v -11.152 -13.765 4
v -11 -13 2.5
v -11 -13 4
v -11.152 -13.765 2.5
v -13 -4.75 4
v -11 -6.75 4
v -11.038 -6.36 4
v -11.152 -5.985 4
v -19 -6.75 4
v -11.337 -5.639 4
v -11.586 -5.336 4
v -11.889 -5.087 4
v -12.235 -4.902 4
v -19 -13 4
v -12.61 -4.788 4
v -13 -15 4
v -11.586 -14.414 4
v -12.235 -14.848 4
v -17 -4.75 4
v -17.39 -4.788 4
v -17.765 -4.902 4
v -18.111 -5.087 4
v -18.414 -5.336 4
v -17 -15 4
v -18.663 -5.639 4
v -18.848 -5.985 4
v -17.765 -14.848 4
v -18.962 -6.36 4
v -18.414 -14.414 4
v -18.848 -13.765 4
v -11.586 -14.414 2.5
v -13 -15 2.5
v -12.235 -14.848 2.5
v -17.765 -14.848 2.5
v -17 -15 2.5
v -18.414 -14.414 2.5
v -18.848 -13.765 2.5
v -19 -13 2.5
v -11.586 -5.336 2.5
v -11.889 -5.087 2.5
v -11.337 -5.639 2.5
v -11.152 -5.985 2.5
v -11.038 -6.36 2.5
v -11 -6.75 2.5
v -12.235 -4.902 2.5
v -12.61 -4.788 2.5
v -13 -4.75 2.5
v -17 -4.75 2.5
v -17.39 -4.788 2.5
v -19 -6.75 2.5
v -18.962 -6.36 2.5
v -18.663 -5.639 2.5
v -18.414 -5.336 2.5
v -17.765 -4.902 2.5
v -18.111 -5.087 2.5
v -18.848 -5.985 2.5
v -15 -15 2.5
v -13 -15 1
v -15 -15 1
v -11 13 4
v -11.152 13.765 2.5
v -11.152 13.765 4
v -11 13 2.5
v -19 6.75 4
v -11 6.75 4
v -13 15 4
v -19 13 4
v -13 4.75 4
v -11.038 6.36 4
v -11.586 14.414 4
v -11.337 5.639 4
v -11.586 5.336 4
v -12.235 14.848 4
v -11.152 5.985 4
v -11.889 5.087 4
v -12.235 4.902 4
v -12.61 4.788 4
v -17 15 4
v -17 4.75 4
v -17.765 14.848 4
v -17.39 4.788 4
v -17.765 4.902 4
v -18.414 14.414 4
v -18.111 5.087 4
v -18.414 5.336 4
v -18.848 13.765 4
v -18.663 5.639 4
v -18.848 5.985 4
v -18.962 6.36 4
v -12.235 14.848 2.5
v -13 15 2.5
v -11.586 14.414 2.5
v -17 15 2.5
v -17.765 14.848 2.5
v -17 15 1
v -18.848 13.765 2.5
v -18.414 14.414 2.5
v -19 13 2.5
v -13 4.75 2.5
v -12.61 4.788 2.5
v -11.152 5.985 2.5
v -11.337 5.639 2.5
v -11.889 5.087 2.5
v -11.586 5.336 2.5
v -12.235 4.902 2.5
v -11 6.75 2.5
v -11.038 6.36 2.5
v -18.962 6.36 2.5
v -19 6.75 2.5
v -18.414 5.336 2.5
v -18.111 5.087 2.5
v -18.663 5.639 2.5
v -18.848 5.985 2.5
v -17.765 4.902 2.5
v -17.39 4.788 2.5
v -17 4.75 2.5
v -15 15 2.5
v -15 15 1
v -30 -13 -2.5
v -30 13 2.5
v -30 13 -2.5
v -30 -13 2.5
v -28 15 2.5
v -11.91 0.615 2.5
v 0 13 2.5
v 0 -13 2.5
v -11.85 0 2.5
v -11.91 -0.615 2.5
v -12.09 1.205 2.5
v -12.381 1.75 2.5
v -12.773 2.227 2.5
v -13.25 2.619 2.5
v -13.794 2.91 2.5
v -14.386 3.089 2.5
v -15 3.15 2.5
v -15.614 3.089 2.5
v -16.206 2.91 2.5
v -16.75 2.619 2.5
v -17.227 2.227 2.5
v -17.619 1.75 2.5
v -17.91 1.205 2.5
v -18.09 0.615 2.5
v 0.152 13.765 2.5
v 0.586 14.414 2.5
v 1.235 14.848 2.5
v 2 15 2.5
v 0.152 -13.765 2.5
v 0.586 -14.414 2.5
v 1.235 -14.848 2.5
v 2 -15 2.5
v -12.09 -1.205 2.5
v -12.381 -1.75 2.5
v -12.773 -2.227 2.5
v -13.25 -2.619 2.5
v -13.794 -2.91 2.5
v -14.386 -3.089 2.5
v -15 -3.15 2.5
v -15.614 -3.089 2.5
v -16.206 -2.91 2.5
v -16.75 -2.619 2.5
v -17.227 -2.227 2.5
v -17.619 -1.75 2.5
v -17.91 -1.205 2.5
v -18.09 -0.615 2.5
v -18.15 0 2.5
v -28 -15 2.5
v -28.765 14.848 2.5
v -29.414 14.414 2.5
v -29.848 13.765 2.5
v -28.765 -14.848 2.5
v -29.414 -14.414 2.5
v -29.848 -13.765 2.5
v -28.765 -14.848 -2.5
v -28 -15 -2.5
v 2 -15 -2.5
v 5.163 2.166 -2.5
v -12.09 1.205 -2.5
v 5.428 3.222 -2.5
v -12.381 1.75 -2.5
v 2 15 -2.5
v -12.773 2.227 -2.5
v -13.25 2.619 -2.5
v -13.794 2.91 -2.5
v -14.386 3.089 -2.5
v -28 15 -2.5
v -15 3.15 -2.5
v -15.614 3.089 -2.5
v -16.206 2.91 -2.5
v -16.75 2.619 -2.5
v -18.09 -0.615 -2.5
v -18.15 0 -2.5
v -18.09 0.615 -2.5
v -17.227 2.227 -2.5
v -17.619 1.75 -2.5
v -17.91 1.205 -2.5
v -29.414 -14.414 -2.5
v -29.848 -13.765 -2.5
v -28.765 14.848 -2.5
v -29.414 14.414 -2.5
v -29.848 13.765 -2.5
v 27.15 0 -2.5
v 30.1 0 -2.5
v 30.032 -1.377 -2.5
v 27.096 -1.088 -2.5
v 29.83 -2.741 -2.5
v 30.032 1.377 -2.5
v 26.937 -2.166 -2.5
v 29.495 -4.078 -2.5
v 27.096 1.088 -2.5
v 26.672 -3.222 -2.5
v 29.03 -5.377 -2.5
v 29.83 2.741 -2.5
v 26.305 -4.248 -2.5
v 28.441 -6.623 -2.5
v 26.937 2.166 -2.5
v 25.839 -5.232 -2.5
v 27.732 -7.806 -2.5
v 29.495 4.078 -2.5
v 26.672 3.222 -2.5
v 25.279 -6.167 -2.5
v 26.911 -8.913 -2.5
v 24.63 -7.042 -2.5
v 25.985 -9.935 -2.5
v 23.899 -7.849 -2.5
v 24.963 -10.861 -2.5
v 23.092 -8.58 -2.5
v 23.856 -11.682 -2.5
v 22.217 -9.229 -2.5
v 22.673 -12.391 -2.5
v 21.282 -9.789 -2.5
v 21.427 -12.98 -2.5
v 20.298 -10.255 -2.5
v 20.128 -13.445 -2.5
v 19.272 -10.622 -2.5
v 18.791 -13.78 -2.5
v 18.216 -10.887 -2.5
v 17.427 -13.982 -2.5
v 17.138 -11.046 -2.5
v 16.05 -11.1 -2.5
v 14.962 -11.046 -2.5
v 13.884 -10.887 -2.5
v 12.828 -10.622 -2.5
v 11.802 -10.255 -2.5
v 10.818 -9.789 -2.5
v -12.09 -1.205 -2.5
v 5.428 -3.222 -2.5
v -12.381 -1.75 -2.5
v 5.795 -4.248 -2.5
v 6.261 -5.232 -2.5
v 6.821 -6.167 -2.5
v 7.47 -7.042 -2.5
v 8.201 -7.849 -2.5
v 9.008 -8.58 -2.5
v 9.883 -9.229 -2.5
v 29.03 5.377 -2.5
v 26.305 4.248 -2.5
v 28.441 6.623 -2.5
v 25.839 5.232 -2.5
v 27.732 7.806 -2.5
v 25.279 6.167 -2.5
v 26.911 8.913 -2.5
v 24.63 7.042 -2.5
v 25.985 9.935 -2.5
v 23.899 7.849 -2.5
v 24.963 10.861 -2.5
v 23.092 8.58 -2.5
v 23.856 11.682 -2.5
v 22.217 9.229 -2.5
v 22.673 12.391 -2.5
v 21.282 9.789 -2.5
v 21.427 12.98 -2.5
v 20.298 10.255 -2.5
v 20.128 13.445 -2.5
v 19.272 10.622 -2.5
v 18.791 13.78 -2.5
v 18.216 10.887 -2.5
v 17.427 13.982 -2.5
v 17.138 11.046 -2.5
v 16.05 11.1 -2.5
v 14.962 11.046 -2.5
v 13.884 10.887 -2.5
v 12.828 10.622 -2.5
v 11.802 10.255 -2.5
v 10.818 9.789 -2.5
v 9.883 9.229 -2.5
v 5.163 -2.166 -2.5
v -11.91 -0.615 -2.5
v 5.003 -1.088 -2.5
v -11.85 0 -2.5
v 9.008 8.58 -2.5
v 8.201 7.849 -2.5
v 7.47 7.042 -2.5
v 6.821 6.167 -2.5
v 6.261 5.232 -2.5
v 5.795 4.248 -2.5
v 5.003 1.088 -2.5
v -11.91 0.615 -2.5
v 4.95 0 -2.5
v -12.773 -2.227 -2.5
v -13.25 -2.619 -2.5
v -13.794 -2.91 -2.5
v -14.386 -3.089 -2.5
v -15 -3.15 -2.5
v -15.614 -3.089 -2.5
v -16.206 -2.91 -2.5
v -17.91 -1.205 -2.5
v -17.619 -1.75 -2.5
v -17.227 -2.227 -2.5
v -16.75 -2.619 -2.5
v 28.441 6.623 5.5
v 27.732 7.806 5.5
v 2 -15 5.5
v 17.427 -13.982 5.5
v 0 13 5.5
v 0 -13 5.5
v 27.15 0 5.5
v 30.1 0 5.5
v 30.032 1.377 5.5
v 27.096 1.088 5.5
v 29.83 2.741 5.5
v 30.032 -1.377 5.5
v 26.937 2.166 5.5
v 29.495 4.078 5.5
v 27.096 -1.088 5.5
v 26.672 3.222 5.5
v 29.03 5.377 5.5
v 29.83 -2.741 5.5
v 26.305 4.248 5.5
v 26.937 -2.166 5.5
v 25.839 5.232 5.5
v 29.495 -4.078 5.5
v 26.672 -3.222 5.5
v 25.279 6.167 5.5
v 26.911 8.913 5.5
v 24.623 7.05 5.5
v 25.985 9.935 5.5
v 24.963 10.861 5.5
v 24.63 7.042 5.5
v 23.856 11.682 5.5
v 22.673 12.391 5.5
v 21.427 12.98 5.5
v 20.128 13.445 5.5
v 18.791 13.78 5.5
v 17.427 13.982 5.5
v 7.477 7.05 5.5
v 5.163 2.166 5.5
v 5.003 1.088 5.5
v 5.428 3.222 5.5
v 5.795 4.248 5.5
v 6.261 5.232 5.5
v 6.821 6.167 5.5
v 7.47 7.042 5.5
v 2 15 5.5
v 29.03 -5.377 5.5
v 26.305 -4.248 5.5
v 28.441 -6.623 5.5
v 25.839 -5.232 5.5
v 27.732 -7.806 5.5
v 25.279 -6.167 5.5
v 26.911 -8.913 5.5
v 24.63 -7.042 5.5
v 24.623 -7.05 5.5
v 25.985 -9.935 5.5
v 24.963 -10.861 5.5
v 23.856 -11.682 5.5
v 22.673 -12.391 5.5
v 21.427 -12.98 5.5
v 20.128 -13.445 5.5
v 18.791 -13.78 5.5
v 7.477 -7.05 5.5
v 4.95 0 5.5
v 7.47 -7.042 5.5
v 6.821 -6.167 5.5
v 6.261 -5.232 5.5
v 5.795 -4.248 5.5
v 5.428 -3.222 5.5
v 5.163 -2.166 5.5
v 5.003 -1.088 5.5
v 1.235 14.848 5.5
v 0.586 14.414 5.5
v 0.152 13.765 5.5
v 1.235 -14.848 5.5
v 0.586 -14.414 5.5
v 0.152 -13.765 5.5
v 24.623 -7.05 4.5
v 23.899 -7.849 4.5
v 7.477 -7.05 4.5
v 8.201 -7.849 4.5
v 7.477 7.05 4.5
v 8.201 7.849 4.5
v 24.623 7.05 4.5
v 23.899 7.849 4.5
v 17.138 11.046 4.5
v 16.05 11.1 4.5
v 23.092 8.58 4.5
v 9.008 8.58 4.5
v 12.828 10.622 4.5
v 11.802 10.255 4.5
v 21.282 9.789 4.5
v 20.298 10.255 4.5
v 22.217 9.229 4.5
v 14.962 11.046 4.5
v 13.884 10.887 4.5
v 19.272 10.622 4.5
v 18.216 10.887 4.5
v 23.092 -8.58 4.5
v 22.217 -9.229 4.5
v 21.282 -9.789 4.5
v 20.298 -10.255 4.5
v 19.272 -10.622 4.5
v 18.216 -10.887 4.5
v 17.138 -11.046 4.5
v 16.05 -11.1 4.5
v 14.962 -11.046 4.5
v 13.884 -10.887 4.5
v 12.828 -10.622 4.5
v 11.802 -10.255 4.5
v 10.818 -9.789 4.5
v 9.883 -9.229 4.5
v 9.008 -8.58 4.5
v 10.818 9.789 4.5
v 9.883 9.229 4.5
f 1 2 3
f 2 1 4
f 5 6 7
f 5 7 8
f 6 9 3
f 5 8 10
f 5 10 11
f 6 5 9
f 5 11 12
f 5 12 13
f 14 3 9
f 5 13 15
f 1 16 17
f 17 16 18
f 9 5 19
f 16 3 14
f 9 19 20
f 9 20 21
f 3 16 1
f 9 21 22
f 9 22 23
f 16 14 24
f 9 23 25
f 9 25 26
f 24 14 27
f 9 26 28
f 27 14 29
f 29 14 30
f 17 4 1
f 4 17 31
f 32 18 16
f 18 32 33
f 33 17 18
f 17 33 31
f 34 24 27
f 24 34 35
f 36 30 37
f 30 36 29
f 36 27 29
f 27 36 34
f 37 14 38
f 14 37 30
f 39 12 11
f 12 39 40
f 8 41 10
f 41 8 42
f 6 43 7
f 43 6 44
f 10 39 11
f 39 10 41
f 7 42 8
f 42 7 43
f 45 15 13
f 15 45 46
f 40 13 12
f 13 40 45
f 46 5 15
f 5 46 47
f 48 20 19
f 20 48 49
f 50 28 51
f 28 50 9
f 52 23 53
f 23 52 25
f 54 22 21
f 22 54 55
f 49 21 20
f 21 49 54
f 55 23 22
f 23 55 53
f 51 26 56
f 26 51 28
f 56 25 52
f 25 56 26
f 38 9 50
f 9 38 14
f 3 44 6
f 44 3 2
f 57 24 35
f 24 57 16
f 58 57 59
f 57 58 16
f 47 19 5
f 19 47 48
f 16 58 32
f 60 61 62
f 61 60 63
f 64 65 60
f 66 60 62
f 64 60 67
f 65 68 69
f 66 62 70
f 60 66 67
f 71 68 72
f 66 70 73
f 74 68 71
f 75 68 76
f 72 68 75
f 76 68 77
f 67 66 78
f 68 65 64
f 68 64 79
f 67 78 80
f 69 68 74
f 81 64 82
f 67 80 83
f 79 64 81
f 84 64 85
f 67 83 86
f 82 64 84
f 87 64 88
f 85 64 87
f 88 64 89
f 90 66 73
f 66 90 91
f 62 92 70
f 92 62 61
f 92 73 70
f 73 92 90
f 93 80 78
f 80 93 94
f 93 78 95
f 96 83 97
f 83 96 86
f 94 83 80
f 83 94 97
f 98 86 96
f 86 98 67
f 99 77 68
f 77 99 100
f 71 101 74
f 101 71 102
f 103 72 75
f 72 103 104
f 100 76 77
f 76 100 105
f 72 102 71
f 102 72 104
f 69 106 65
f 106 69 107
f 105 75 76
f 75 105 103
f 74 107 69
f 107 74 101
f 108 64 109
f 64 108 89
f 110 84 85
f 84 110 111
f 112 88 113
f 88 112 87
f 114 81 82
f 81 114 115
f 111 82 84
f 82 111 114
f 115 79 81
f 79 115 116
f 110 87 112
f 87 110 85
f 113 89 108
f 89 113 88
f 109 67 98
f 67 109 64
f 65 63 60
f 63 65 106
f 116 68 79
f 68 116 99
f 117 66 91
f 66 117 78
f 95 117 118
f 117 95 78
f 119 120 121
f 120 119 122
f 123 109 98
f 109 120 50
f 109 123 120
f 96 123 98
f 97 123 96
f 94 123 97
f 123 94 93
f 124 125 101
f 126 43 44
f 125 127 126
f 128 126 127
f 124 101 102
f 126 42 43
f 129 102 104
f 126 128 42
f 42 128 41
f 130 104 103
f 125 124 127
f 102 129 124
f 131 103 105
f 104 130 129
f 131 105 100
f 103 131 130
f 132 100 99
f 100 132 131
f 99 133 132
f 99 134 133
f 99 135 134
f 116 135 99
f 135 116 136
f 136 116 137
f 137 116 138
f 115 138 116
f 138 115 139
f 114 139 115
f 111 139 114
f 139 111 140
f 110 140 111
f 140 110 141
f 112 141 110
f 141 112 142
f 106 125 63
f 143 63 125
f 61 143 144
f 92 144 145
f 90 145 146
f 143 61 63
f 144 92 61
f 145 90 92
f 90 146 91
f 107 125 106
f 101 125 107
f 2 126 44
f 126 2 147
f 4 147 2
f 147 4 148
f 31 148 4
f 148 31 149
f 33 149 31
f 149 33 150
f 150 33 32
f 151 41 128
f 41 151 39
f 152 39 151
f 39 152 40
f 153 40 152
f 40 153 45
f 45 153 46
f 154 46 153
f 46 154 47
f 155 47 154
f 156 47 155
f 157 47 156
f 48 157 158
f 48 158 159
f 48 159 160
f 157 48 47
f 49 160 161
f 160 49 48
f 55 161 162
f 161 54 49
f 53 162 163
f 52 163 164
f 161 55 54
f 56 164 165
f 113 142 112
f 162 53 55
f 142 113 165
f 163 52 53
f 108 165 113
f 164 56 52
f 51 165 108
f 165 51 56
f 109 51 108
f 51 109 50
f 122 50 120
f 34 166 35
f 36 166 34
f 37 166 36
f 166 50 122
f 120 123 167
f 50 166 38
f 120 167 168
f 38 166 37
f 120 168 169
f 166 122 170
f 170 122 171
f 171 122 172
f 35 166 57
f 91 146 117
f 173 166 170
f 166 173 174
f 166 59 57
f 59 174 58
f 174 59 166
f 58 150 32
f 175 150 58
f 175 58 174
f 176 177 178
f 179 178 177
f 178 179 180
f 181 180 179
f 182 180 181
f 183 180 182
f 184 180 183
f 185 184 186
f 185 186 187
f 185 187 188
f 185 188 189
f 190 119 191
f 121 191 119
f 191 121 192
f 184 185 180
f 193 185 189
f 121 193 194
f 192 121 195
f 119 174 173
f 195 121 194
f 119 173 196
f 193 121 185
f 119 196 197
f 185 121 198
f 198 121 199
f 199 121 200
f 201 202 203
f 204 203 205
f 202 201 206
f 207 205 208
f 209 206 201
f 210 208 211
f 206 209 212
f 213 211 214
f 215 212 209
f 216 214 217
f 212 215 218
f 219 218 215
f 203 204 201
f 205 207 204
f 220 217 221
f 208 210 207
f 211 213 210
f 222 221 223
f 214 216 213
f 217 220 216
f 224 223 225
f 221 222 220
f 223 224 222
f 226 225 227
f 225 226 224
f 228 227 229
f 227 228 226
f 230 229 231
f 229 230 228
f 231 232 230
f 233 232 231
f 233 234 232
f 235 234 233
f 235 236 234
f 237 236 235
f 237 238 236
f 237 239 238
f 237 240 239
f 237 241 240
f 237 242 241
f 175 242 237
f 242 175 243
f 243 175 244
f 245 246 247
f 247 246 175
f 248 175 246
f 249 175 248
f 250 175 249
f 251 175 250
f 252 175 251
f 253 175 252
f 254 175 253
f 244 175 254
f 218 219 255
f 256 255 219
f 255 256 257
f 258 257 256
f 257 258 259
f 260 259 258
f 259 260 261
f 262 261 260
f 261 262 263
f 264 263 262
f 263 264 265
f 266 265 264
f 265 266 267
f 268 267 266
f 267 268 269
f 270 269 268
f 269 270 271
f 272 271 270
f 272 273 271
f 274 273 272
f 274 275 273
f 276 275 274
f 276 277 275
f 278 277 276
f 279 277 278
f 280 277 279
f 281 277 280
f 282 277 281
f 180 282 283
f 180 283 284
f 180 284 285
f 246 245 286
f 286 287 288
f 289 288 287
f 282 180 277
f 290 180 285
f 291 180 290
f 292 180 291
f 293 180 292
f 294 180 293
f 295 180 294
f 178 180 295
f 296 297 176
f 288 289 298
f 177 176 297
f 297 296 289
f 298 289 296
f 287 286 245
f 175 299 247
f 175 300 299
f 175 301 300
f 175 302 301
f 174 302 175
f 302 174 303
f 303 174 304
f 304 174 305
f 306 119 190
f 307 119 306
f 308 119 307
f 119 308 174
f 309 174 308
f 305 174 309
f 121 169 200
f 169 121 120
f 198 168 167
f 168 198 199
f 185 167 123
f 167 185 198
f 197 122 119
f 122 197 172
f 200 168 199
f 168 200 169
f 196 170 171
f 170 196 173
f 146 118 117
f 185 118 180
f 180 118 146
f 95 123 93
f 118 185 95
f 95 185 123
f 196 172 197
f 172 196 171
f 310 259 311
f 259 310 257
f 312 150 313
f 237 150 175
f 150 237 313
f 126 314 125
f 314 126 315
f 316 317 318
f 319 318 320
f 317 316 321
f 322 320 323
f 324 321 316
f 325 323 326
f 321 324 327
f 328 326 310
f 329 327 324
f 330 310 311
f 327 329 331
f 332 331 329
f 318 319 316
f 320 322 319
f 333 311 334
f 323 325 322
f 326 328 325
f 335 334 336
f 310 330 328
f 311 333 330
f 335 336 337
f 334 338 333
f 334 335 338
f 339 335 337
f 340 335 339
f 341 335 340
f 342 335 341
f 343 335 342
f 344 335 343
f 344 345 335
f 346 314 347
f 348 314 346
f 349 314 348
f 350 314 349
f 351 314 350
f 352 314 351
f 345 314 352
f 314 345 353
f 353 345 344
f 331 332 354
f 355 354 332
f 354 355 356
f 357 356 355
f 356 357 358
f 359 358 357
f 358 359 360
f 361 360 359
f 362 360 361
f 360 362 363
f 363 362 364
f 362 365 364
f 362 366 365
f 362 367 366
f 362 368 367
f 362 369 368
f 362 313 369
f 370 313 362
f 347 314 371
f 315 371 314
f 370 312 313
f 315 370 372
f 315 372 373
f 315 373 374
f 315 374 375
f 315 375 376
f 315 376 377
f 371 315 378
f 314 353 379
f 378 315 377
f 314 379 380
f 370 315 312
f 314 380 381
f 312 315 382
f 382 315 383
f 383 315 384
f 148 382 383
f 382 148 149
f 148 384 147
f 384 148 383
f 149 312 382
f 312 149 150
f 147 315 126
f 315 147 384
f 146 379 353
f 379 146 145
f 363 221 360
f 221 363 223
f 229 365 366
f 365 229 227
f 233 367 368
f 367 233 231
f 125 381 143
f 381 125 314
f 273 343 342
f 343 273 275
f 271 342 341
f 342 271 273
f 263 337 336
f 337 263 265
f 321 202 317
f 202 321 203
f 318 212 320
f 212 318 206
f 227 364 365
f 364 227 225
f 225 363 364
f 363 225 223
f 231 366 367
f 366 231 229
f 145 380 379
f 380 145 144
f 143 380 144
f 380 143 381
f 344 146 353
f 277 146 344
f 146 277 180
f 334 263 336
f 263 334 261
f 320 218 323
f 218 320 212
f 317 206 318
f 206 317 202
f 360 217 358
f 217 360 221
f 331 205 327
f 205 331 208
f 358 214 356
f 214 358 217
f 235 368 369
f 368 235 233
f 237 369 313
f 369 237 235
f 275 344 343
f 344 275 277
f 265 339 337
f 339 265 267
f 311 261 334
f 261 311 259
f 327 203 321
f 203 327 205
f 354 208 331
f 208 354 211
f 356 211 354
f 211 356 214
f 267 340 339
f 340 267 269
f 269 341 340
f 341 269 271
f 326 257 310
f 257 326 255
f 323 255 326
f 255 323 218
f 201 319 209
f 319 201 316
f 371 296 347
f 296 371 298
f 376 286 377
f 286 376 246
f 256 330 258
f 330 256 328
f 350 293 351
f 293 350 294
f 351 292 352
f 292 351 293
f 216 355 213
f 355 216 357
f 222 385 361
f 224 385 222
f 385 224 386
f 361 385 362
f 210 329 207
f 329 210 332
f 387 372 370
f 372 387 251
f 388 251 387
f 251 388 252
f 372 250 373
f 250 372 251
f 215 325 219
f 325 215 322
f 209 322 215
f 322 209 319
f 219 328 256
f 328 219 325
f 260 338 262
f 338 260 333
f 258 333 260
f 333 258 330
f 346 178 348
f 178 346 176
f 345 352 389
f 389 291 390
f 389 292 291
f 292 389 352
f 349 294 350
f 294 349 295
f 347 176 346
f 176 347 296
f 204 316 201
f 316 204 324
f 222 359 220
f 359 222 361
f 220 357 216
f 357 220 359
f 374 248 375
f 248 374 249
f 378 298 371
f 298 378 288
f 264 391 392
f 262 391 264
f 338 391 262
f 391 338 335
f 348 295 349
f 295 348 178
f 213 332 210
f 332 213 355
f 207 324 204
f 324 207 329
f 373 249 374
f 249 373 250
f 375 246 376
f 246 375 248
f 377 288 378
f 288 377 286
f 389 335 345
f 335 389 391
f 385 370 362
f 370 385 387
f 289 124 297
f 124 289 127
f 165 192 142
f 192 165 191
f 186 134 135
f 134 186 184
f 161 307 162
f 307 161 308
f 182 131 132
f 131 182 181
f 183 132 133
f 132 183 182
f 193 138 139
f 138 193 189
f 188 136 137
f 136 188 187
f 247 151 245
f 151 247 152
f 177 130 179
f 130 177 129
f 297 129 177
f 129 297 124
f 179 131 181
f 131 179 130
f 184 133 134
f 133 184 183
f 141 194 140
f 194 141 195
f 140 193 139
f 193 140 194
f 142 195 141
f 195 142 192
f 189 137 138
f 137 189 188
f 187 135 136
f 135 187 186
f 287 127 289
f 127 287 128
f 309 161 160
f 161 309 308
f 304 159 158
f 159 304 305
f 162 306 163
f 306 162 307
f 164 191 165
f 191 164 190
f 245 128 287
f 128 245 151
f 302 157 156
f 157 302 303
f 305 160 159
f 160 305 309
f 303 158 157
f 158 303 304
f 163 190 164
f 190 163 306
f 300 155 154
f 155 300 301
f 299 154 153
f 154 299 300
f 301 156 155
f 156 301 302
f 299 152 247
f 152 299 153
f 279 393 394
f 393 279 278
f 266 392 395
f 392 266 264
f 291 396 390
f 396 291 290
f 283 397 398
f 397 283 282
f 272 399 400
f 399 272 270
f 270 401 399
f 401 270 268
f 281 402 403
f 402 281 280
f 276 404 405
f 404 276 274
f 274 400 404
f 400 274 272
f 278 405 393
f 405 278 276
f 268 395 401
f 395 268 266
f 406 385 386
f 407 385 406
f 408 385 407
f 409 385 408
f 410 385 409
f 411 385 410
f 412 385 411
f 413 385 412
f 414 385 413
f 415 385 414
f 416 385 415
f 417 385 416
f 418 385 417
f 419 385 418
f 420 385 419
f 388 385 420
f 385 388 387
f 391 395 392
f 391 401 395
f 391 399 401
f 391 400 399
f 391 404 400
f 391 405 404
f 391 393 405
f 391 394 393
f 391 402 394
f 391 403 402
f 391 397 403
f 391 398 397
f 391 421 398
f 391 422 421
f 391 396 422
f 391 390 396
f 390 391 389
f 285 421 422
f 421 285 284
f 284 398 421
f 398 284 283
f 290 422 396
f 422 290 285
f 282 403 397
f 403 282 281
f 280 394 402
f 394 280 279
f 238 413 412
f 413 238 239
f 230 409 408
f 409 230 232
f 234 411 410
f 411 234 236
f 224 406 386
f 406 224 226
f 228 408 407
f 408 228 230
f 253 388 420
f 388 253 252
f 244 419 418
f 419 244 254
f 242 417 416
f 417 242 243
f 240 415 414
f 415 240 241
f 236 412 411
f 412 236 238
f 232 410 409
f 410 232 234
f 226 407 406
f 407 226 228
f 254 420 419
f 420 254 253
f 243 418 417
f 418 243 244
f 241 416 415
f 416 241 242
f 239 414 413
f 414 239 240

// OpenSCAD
/* 
   === RebeliX BoX ===

   z bearing top holder
   GNU GPL v3
   Martin Neruda <neruda@RebeliX.cz>
   http://www.RebeliX.cz
*/
//include <../configuration.scad>
include <../inc/functions.scad>

part_width = profile_width;
holder_height = 8;

corner_rad = 4;

module Z_bearing_holder_base()
{
	translate([-profile_width/2 + corner_rad/2,0,0]) rounded_box(profile_width + corner_rad,part_width,coupler_thickness,corner_rad,1,1,1,1);
	  
	hull()
	{
	  translate([corner_rad/2,-part_width/2 + corner_rad/2,-coupler_thickness/2 + holder_height/2]) cylinder(d=corner_rad,h=holder_height,$fn=16,center=true);
	  
	  translate([corner_rad/2,part_width/2 - corner_rad/2,-coupler_thickness/2 + holder_height/2]) cylinder(d=corner_rad,h=holder_height,$fn=16,center=true);
	  
	  translate([(big_bearing_OUT_D + 10)/2,0,-coupler_thickness/2 + holder_height/2]) cylinder(d=big_bearing_OUT_D +6,h=holder_height,$fn=64,center=true);
	}  
	translate([-profile_width/2,0,coupler_thickness/2]) rotate([0,0,90]) drazka();
}

module Z_bearing_holder_cuts()
{ 
  // Otvory pro sroub
  translate([-profile_width/2,0,0])cylinder(d=M6_screw_D,h=20,$fn=32,center=true);
  
  // Otvor pro lozisko
  translate([(big_bearing_OUT_D + 10)/2,0,-coupler_thickness/2]) cylinder(d=big_bearing_OUT_D + 0.1,h=2*bearing_608_H,$fn=64,center=true);
    
  // Otvor pro lozisko
  intersection()
  {
    translate([(big_bearing_OUT_D + 10)/2,0,0]) cylinder(d=big_bearing_OUT_D + 0.1,h=50,$fn=64,center=true);
    translate([(big_bearing_OUT_D + 10)/2,0,0]) cube([big_bearing_OUT_D + 0.1,big_bearing_OUT_D-8,50],center=true);
   }
}

module Z_bearing_holder()
{
  difference()
  {
	Z_bearing_holder_base();
	Z_bearing_holder_cuts();
  }
}

Z_bearing_holder();
